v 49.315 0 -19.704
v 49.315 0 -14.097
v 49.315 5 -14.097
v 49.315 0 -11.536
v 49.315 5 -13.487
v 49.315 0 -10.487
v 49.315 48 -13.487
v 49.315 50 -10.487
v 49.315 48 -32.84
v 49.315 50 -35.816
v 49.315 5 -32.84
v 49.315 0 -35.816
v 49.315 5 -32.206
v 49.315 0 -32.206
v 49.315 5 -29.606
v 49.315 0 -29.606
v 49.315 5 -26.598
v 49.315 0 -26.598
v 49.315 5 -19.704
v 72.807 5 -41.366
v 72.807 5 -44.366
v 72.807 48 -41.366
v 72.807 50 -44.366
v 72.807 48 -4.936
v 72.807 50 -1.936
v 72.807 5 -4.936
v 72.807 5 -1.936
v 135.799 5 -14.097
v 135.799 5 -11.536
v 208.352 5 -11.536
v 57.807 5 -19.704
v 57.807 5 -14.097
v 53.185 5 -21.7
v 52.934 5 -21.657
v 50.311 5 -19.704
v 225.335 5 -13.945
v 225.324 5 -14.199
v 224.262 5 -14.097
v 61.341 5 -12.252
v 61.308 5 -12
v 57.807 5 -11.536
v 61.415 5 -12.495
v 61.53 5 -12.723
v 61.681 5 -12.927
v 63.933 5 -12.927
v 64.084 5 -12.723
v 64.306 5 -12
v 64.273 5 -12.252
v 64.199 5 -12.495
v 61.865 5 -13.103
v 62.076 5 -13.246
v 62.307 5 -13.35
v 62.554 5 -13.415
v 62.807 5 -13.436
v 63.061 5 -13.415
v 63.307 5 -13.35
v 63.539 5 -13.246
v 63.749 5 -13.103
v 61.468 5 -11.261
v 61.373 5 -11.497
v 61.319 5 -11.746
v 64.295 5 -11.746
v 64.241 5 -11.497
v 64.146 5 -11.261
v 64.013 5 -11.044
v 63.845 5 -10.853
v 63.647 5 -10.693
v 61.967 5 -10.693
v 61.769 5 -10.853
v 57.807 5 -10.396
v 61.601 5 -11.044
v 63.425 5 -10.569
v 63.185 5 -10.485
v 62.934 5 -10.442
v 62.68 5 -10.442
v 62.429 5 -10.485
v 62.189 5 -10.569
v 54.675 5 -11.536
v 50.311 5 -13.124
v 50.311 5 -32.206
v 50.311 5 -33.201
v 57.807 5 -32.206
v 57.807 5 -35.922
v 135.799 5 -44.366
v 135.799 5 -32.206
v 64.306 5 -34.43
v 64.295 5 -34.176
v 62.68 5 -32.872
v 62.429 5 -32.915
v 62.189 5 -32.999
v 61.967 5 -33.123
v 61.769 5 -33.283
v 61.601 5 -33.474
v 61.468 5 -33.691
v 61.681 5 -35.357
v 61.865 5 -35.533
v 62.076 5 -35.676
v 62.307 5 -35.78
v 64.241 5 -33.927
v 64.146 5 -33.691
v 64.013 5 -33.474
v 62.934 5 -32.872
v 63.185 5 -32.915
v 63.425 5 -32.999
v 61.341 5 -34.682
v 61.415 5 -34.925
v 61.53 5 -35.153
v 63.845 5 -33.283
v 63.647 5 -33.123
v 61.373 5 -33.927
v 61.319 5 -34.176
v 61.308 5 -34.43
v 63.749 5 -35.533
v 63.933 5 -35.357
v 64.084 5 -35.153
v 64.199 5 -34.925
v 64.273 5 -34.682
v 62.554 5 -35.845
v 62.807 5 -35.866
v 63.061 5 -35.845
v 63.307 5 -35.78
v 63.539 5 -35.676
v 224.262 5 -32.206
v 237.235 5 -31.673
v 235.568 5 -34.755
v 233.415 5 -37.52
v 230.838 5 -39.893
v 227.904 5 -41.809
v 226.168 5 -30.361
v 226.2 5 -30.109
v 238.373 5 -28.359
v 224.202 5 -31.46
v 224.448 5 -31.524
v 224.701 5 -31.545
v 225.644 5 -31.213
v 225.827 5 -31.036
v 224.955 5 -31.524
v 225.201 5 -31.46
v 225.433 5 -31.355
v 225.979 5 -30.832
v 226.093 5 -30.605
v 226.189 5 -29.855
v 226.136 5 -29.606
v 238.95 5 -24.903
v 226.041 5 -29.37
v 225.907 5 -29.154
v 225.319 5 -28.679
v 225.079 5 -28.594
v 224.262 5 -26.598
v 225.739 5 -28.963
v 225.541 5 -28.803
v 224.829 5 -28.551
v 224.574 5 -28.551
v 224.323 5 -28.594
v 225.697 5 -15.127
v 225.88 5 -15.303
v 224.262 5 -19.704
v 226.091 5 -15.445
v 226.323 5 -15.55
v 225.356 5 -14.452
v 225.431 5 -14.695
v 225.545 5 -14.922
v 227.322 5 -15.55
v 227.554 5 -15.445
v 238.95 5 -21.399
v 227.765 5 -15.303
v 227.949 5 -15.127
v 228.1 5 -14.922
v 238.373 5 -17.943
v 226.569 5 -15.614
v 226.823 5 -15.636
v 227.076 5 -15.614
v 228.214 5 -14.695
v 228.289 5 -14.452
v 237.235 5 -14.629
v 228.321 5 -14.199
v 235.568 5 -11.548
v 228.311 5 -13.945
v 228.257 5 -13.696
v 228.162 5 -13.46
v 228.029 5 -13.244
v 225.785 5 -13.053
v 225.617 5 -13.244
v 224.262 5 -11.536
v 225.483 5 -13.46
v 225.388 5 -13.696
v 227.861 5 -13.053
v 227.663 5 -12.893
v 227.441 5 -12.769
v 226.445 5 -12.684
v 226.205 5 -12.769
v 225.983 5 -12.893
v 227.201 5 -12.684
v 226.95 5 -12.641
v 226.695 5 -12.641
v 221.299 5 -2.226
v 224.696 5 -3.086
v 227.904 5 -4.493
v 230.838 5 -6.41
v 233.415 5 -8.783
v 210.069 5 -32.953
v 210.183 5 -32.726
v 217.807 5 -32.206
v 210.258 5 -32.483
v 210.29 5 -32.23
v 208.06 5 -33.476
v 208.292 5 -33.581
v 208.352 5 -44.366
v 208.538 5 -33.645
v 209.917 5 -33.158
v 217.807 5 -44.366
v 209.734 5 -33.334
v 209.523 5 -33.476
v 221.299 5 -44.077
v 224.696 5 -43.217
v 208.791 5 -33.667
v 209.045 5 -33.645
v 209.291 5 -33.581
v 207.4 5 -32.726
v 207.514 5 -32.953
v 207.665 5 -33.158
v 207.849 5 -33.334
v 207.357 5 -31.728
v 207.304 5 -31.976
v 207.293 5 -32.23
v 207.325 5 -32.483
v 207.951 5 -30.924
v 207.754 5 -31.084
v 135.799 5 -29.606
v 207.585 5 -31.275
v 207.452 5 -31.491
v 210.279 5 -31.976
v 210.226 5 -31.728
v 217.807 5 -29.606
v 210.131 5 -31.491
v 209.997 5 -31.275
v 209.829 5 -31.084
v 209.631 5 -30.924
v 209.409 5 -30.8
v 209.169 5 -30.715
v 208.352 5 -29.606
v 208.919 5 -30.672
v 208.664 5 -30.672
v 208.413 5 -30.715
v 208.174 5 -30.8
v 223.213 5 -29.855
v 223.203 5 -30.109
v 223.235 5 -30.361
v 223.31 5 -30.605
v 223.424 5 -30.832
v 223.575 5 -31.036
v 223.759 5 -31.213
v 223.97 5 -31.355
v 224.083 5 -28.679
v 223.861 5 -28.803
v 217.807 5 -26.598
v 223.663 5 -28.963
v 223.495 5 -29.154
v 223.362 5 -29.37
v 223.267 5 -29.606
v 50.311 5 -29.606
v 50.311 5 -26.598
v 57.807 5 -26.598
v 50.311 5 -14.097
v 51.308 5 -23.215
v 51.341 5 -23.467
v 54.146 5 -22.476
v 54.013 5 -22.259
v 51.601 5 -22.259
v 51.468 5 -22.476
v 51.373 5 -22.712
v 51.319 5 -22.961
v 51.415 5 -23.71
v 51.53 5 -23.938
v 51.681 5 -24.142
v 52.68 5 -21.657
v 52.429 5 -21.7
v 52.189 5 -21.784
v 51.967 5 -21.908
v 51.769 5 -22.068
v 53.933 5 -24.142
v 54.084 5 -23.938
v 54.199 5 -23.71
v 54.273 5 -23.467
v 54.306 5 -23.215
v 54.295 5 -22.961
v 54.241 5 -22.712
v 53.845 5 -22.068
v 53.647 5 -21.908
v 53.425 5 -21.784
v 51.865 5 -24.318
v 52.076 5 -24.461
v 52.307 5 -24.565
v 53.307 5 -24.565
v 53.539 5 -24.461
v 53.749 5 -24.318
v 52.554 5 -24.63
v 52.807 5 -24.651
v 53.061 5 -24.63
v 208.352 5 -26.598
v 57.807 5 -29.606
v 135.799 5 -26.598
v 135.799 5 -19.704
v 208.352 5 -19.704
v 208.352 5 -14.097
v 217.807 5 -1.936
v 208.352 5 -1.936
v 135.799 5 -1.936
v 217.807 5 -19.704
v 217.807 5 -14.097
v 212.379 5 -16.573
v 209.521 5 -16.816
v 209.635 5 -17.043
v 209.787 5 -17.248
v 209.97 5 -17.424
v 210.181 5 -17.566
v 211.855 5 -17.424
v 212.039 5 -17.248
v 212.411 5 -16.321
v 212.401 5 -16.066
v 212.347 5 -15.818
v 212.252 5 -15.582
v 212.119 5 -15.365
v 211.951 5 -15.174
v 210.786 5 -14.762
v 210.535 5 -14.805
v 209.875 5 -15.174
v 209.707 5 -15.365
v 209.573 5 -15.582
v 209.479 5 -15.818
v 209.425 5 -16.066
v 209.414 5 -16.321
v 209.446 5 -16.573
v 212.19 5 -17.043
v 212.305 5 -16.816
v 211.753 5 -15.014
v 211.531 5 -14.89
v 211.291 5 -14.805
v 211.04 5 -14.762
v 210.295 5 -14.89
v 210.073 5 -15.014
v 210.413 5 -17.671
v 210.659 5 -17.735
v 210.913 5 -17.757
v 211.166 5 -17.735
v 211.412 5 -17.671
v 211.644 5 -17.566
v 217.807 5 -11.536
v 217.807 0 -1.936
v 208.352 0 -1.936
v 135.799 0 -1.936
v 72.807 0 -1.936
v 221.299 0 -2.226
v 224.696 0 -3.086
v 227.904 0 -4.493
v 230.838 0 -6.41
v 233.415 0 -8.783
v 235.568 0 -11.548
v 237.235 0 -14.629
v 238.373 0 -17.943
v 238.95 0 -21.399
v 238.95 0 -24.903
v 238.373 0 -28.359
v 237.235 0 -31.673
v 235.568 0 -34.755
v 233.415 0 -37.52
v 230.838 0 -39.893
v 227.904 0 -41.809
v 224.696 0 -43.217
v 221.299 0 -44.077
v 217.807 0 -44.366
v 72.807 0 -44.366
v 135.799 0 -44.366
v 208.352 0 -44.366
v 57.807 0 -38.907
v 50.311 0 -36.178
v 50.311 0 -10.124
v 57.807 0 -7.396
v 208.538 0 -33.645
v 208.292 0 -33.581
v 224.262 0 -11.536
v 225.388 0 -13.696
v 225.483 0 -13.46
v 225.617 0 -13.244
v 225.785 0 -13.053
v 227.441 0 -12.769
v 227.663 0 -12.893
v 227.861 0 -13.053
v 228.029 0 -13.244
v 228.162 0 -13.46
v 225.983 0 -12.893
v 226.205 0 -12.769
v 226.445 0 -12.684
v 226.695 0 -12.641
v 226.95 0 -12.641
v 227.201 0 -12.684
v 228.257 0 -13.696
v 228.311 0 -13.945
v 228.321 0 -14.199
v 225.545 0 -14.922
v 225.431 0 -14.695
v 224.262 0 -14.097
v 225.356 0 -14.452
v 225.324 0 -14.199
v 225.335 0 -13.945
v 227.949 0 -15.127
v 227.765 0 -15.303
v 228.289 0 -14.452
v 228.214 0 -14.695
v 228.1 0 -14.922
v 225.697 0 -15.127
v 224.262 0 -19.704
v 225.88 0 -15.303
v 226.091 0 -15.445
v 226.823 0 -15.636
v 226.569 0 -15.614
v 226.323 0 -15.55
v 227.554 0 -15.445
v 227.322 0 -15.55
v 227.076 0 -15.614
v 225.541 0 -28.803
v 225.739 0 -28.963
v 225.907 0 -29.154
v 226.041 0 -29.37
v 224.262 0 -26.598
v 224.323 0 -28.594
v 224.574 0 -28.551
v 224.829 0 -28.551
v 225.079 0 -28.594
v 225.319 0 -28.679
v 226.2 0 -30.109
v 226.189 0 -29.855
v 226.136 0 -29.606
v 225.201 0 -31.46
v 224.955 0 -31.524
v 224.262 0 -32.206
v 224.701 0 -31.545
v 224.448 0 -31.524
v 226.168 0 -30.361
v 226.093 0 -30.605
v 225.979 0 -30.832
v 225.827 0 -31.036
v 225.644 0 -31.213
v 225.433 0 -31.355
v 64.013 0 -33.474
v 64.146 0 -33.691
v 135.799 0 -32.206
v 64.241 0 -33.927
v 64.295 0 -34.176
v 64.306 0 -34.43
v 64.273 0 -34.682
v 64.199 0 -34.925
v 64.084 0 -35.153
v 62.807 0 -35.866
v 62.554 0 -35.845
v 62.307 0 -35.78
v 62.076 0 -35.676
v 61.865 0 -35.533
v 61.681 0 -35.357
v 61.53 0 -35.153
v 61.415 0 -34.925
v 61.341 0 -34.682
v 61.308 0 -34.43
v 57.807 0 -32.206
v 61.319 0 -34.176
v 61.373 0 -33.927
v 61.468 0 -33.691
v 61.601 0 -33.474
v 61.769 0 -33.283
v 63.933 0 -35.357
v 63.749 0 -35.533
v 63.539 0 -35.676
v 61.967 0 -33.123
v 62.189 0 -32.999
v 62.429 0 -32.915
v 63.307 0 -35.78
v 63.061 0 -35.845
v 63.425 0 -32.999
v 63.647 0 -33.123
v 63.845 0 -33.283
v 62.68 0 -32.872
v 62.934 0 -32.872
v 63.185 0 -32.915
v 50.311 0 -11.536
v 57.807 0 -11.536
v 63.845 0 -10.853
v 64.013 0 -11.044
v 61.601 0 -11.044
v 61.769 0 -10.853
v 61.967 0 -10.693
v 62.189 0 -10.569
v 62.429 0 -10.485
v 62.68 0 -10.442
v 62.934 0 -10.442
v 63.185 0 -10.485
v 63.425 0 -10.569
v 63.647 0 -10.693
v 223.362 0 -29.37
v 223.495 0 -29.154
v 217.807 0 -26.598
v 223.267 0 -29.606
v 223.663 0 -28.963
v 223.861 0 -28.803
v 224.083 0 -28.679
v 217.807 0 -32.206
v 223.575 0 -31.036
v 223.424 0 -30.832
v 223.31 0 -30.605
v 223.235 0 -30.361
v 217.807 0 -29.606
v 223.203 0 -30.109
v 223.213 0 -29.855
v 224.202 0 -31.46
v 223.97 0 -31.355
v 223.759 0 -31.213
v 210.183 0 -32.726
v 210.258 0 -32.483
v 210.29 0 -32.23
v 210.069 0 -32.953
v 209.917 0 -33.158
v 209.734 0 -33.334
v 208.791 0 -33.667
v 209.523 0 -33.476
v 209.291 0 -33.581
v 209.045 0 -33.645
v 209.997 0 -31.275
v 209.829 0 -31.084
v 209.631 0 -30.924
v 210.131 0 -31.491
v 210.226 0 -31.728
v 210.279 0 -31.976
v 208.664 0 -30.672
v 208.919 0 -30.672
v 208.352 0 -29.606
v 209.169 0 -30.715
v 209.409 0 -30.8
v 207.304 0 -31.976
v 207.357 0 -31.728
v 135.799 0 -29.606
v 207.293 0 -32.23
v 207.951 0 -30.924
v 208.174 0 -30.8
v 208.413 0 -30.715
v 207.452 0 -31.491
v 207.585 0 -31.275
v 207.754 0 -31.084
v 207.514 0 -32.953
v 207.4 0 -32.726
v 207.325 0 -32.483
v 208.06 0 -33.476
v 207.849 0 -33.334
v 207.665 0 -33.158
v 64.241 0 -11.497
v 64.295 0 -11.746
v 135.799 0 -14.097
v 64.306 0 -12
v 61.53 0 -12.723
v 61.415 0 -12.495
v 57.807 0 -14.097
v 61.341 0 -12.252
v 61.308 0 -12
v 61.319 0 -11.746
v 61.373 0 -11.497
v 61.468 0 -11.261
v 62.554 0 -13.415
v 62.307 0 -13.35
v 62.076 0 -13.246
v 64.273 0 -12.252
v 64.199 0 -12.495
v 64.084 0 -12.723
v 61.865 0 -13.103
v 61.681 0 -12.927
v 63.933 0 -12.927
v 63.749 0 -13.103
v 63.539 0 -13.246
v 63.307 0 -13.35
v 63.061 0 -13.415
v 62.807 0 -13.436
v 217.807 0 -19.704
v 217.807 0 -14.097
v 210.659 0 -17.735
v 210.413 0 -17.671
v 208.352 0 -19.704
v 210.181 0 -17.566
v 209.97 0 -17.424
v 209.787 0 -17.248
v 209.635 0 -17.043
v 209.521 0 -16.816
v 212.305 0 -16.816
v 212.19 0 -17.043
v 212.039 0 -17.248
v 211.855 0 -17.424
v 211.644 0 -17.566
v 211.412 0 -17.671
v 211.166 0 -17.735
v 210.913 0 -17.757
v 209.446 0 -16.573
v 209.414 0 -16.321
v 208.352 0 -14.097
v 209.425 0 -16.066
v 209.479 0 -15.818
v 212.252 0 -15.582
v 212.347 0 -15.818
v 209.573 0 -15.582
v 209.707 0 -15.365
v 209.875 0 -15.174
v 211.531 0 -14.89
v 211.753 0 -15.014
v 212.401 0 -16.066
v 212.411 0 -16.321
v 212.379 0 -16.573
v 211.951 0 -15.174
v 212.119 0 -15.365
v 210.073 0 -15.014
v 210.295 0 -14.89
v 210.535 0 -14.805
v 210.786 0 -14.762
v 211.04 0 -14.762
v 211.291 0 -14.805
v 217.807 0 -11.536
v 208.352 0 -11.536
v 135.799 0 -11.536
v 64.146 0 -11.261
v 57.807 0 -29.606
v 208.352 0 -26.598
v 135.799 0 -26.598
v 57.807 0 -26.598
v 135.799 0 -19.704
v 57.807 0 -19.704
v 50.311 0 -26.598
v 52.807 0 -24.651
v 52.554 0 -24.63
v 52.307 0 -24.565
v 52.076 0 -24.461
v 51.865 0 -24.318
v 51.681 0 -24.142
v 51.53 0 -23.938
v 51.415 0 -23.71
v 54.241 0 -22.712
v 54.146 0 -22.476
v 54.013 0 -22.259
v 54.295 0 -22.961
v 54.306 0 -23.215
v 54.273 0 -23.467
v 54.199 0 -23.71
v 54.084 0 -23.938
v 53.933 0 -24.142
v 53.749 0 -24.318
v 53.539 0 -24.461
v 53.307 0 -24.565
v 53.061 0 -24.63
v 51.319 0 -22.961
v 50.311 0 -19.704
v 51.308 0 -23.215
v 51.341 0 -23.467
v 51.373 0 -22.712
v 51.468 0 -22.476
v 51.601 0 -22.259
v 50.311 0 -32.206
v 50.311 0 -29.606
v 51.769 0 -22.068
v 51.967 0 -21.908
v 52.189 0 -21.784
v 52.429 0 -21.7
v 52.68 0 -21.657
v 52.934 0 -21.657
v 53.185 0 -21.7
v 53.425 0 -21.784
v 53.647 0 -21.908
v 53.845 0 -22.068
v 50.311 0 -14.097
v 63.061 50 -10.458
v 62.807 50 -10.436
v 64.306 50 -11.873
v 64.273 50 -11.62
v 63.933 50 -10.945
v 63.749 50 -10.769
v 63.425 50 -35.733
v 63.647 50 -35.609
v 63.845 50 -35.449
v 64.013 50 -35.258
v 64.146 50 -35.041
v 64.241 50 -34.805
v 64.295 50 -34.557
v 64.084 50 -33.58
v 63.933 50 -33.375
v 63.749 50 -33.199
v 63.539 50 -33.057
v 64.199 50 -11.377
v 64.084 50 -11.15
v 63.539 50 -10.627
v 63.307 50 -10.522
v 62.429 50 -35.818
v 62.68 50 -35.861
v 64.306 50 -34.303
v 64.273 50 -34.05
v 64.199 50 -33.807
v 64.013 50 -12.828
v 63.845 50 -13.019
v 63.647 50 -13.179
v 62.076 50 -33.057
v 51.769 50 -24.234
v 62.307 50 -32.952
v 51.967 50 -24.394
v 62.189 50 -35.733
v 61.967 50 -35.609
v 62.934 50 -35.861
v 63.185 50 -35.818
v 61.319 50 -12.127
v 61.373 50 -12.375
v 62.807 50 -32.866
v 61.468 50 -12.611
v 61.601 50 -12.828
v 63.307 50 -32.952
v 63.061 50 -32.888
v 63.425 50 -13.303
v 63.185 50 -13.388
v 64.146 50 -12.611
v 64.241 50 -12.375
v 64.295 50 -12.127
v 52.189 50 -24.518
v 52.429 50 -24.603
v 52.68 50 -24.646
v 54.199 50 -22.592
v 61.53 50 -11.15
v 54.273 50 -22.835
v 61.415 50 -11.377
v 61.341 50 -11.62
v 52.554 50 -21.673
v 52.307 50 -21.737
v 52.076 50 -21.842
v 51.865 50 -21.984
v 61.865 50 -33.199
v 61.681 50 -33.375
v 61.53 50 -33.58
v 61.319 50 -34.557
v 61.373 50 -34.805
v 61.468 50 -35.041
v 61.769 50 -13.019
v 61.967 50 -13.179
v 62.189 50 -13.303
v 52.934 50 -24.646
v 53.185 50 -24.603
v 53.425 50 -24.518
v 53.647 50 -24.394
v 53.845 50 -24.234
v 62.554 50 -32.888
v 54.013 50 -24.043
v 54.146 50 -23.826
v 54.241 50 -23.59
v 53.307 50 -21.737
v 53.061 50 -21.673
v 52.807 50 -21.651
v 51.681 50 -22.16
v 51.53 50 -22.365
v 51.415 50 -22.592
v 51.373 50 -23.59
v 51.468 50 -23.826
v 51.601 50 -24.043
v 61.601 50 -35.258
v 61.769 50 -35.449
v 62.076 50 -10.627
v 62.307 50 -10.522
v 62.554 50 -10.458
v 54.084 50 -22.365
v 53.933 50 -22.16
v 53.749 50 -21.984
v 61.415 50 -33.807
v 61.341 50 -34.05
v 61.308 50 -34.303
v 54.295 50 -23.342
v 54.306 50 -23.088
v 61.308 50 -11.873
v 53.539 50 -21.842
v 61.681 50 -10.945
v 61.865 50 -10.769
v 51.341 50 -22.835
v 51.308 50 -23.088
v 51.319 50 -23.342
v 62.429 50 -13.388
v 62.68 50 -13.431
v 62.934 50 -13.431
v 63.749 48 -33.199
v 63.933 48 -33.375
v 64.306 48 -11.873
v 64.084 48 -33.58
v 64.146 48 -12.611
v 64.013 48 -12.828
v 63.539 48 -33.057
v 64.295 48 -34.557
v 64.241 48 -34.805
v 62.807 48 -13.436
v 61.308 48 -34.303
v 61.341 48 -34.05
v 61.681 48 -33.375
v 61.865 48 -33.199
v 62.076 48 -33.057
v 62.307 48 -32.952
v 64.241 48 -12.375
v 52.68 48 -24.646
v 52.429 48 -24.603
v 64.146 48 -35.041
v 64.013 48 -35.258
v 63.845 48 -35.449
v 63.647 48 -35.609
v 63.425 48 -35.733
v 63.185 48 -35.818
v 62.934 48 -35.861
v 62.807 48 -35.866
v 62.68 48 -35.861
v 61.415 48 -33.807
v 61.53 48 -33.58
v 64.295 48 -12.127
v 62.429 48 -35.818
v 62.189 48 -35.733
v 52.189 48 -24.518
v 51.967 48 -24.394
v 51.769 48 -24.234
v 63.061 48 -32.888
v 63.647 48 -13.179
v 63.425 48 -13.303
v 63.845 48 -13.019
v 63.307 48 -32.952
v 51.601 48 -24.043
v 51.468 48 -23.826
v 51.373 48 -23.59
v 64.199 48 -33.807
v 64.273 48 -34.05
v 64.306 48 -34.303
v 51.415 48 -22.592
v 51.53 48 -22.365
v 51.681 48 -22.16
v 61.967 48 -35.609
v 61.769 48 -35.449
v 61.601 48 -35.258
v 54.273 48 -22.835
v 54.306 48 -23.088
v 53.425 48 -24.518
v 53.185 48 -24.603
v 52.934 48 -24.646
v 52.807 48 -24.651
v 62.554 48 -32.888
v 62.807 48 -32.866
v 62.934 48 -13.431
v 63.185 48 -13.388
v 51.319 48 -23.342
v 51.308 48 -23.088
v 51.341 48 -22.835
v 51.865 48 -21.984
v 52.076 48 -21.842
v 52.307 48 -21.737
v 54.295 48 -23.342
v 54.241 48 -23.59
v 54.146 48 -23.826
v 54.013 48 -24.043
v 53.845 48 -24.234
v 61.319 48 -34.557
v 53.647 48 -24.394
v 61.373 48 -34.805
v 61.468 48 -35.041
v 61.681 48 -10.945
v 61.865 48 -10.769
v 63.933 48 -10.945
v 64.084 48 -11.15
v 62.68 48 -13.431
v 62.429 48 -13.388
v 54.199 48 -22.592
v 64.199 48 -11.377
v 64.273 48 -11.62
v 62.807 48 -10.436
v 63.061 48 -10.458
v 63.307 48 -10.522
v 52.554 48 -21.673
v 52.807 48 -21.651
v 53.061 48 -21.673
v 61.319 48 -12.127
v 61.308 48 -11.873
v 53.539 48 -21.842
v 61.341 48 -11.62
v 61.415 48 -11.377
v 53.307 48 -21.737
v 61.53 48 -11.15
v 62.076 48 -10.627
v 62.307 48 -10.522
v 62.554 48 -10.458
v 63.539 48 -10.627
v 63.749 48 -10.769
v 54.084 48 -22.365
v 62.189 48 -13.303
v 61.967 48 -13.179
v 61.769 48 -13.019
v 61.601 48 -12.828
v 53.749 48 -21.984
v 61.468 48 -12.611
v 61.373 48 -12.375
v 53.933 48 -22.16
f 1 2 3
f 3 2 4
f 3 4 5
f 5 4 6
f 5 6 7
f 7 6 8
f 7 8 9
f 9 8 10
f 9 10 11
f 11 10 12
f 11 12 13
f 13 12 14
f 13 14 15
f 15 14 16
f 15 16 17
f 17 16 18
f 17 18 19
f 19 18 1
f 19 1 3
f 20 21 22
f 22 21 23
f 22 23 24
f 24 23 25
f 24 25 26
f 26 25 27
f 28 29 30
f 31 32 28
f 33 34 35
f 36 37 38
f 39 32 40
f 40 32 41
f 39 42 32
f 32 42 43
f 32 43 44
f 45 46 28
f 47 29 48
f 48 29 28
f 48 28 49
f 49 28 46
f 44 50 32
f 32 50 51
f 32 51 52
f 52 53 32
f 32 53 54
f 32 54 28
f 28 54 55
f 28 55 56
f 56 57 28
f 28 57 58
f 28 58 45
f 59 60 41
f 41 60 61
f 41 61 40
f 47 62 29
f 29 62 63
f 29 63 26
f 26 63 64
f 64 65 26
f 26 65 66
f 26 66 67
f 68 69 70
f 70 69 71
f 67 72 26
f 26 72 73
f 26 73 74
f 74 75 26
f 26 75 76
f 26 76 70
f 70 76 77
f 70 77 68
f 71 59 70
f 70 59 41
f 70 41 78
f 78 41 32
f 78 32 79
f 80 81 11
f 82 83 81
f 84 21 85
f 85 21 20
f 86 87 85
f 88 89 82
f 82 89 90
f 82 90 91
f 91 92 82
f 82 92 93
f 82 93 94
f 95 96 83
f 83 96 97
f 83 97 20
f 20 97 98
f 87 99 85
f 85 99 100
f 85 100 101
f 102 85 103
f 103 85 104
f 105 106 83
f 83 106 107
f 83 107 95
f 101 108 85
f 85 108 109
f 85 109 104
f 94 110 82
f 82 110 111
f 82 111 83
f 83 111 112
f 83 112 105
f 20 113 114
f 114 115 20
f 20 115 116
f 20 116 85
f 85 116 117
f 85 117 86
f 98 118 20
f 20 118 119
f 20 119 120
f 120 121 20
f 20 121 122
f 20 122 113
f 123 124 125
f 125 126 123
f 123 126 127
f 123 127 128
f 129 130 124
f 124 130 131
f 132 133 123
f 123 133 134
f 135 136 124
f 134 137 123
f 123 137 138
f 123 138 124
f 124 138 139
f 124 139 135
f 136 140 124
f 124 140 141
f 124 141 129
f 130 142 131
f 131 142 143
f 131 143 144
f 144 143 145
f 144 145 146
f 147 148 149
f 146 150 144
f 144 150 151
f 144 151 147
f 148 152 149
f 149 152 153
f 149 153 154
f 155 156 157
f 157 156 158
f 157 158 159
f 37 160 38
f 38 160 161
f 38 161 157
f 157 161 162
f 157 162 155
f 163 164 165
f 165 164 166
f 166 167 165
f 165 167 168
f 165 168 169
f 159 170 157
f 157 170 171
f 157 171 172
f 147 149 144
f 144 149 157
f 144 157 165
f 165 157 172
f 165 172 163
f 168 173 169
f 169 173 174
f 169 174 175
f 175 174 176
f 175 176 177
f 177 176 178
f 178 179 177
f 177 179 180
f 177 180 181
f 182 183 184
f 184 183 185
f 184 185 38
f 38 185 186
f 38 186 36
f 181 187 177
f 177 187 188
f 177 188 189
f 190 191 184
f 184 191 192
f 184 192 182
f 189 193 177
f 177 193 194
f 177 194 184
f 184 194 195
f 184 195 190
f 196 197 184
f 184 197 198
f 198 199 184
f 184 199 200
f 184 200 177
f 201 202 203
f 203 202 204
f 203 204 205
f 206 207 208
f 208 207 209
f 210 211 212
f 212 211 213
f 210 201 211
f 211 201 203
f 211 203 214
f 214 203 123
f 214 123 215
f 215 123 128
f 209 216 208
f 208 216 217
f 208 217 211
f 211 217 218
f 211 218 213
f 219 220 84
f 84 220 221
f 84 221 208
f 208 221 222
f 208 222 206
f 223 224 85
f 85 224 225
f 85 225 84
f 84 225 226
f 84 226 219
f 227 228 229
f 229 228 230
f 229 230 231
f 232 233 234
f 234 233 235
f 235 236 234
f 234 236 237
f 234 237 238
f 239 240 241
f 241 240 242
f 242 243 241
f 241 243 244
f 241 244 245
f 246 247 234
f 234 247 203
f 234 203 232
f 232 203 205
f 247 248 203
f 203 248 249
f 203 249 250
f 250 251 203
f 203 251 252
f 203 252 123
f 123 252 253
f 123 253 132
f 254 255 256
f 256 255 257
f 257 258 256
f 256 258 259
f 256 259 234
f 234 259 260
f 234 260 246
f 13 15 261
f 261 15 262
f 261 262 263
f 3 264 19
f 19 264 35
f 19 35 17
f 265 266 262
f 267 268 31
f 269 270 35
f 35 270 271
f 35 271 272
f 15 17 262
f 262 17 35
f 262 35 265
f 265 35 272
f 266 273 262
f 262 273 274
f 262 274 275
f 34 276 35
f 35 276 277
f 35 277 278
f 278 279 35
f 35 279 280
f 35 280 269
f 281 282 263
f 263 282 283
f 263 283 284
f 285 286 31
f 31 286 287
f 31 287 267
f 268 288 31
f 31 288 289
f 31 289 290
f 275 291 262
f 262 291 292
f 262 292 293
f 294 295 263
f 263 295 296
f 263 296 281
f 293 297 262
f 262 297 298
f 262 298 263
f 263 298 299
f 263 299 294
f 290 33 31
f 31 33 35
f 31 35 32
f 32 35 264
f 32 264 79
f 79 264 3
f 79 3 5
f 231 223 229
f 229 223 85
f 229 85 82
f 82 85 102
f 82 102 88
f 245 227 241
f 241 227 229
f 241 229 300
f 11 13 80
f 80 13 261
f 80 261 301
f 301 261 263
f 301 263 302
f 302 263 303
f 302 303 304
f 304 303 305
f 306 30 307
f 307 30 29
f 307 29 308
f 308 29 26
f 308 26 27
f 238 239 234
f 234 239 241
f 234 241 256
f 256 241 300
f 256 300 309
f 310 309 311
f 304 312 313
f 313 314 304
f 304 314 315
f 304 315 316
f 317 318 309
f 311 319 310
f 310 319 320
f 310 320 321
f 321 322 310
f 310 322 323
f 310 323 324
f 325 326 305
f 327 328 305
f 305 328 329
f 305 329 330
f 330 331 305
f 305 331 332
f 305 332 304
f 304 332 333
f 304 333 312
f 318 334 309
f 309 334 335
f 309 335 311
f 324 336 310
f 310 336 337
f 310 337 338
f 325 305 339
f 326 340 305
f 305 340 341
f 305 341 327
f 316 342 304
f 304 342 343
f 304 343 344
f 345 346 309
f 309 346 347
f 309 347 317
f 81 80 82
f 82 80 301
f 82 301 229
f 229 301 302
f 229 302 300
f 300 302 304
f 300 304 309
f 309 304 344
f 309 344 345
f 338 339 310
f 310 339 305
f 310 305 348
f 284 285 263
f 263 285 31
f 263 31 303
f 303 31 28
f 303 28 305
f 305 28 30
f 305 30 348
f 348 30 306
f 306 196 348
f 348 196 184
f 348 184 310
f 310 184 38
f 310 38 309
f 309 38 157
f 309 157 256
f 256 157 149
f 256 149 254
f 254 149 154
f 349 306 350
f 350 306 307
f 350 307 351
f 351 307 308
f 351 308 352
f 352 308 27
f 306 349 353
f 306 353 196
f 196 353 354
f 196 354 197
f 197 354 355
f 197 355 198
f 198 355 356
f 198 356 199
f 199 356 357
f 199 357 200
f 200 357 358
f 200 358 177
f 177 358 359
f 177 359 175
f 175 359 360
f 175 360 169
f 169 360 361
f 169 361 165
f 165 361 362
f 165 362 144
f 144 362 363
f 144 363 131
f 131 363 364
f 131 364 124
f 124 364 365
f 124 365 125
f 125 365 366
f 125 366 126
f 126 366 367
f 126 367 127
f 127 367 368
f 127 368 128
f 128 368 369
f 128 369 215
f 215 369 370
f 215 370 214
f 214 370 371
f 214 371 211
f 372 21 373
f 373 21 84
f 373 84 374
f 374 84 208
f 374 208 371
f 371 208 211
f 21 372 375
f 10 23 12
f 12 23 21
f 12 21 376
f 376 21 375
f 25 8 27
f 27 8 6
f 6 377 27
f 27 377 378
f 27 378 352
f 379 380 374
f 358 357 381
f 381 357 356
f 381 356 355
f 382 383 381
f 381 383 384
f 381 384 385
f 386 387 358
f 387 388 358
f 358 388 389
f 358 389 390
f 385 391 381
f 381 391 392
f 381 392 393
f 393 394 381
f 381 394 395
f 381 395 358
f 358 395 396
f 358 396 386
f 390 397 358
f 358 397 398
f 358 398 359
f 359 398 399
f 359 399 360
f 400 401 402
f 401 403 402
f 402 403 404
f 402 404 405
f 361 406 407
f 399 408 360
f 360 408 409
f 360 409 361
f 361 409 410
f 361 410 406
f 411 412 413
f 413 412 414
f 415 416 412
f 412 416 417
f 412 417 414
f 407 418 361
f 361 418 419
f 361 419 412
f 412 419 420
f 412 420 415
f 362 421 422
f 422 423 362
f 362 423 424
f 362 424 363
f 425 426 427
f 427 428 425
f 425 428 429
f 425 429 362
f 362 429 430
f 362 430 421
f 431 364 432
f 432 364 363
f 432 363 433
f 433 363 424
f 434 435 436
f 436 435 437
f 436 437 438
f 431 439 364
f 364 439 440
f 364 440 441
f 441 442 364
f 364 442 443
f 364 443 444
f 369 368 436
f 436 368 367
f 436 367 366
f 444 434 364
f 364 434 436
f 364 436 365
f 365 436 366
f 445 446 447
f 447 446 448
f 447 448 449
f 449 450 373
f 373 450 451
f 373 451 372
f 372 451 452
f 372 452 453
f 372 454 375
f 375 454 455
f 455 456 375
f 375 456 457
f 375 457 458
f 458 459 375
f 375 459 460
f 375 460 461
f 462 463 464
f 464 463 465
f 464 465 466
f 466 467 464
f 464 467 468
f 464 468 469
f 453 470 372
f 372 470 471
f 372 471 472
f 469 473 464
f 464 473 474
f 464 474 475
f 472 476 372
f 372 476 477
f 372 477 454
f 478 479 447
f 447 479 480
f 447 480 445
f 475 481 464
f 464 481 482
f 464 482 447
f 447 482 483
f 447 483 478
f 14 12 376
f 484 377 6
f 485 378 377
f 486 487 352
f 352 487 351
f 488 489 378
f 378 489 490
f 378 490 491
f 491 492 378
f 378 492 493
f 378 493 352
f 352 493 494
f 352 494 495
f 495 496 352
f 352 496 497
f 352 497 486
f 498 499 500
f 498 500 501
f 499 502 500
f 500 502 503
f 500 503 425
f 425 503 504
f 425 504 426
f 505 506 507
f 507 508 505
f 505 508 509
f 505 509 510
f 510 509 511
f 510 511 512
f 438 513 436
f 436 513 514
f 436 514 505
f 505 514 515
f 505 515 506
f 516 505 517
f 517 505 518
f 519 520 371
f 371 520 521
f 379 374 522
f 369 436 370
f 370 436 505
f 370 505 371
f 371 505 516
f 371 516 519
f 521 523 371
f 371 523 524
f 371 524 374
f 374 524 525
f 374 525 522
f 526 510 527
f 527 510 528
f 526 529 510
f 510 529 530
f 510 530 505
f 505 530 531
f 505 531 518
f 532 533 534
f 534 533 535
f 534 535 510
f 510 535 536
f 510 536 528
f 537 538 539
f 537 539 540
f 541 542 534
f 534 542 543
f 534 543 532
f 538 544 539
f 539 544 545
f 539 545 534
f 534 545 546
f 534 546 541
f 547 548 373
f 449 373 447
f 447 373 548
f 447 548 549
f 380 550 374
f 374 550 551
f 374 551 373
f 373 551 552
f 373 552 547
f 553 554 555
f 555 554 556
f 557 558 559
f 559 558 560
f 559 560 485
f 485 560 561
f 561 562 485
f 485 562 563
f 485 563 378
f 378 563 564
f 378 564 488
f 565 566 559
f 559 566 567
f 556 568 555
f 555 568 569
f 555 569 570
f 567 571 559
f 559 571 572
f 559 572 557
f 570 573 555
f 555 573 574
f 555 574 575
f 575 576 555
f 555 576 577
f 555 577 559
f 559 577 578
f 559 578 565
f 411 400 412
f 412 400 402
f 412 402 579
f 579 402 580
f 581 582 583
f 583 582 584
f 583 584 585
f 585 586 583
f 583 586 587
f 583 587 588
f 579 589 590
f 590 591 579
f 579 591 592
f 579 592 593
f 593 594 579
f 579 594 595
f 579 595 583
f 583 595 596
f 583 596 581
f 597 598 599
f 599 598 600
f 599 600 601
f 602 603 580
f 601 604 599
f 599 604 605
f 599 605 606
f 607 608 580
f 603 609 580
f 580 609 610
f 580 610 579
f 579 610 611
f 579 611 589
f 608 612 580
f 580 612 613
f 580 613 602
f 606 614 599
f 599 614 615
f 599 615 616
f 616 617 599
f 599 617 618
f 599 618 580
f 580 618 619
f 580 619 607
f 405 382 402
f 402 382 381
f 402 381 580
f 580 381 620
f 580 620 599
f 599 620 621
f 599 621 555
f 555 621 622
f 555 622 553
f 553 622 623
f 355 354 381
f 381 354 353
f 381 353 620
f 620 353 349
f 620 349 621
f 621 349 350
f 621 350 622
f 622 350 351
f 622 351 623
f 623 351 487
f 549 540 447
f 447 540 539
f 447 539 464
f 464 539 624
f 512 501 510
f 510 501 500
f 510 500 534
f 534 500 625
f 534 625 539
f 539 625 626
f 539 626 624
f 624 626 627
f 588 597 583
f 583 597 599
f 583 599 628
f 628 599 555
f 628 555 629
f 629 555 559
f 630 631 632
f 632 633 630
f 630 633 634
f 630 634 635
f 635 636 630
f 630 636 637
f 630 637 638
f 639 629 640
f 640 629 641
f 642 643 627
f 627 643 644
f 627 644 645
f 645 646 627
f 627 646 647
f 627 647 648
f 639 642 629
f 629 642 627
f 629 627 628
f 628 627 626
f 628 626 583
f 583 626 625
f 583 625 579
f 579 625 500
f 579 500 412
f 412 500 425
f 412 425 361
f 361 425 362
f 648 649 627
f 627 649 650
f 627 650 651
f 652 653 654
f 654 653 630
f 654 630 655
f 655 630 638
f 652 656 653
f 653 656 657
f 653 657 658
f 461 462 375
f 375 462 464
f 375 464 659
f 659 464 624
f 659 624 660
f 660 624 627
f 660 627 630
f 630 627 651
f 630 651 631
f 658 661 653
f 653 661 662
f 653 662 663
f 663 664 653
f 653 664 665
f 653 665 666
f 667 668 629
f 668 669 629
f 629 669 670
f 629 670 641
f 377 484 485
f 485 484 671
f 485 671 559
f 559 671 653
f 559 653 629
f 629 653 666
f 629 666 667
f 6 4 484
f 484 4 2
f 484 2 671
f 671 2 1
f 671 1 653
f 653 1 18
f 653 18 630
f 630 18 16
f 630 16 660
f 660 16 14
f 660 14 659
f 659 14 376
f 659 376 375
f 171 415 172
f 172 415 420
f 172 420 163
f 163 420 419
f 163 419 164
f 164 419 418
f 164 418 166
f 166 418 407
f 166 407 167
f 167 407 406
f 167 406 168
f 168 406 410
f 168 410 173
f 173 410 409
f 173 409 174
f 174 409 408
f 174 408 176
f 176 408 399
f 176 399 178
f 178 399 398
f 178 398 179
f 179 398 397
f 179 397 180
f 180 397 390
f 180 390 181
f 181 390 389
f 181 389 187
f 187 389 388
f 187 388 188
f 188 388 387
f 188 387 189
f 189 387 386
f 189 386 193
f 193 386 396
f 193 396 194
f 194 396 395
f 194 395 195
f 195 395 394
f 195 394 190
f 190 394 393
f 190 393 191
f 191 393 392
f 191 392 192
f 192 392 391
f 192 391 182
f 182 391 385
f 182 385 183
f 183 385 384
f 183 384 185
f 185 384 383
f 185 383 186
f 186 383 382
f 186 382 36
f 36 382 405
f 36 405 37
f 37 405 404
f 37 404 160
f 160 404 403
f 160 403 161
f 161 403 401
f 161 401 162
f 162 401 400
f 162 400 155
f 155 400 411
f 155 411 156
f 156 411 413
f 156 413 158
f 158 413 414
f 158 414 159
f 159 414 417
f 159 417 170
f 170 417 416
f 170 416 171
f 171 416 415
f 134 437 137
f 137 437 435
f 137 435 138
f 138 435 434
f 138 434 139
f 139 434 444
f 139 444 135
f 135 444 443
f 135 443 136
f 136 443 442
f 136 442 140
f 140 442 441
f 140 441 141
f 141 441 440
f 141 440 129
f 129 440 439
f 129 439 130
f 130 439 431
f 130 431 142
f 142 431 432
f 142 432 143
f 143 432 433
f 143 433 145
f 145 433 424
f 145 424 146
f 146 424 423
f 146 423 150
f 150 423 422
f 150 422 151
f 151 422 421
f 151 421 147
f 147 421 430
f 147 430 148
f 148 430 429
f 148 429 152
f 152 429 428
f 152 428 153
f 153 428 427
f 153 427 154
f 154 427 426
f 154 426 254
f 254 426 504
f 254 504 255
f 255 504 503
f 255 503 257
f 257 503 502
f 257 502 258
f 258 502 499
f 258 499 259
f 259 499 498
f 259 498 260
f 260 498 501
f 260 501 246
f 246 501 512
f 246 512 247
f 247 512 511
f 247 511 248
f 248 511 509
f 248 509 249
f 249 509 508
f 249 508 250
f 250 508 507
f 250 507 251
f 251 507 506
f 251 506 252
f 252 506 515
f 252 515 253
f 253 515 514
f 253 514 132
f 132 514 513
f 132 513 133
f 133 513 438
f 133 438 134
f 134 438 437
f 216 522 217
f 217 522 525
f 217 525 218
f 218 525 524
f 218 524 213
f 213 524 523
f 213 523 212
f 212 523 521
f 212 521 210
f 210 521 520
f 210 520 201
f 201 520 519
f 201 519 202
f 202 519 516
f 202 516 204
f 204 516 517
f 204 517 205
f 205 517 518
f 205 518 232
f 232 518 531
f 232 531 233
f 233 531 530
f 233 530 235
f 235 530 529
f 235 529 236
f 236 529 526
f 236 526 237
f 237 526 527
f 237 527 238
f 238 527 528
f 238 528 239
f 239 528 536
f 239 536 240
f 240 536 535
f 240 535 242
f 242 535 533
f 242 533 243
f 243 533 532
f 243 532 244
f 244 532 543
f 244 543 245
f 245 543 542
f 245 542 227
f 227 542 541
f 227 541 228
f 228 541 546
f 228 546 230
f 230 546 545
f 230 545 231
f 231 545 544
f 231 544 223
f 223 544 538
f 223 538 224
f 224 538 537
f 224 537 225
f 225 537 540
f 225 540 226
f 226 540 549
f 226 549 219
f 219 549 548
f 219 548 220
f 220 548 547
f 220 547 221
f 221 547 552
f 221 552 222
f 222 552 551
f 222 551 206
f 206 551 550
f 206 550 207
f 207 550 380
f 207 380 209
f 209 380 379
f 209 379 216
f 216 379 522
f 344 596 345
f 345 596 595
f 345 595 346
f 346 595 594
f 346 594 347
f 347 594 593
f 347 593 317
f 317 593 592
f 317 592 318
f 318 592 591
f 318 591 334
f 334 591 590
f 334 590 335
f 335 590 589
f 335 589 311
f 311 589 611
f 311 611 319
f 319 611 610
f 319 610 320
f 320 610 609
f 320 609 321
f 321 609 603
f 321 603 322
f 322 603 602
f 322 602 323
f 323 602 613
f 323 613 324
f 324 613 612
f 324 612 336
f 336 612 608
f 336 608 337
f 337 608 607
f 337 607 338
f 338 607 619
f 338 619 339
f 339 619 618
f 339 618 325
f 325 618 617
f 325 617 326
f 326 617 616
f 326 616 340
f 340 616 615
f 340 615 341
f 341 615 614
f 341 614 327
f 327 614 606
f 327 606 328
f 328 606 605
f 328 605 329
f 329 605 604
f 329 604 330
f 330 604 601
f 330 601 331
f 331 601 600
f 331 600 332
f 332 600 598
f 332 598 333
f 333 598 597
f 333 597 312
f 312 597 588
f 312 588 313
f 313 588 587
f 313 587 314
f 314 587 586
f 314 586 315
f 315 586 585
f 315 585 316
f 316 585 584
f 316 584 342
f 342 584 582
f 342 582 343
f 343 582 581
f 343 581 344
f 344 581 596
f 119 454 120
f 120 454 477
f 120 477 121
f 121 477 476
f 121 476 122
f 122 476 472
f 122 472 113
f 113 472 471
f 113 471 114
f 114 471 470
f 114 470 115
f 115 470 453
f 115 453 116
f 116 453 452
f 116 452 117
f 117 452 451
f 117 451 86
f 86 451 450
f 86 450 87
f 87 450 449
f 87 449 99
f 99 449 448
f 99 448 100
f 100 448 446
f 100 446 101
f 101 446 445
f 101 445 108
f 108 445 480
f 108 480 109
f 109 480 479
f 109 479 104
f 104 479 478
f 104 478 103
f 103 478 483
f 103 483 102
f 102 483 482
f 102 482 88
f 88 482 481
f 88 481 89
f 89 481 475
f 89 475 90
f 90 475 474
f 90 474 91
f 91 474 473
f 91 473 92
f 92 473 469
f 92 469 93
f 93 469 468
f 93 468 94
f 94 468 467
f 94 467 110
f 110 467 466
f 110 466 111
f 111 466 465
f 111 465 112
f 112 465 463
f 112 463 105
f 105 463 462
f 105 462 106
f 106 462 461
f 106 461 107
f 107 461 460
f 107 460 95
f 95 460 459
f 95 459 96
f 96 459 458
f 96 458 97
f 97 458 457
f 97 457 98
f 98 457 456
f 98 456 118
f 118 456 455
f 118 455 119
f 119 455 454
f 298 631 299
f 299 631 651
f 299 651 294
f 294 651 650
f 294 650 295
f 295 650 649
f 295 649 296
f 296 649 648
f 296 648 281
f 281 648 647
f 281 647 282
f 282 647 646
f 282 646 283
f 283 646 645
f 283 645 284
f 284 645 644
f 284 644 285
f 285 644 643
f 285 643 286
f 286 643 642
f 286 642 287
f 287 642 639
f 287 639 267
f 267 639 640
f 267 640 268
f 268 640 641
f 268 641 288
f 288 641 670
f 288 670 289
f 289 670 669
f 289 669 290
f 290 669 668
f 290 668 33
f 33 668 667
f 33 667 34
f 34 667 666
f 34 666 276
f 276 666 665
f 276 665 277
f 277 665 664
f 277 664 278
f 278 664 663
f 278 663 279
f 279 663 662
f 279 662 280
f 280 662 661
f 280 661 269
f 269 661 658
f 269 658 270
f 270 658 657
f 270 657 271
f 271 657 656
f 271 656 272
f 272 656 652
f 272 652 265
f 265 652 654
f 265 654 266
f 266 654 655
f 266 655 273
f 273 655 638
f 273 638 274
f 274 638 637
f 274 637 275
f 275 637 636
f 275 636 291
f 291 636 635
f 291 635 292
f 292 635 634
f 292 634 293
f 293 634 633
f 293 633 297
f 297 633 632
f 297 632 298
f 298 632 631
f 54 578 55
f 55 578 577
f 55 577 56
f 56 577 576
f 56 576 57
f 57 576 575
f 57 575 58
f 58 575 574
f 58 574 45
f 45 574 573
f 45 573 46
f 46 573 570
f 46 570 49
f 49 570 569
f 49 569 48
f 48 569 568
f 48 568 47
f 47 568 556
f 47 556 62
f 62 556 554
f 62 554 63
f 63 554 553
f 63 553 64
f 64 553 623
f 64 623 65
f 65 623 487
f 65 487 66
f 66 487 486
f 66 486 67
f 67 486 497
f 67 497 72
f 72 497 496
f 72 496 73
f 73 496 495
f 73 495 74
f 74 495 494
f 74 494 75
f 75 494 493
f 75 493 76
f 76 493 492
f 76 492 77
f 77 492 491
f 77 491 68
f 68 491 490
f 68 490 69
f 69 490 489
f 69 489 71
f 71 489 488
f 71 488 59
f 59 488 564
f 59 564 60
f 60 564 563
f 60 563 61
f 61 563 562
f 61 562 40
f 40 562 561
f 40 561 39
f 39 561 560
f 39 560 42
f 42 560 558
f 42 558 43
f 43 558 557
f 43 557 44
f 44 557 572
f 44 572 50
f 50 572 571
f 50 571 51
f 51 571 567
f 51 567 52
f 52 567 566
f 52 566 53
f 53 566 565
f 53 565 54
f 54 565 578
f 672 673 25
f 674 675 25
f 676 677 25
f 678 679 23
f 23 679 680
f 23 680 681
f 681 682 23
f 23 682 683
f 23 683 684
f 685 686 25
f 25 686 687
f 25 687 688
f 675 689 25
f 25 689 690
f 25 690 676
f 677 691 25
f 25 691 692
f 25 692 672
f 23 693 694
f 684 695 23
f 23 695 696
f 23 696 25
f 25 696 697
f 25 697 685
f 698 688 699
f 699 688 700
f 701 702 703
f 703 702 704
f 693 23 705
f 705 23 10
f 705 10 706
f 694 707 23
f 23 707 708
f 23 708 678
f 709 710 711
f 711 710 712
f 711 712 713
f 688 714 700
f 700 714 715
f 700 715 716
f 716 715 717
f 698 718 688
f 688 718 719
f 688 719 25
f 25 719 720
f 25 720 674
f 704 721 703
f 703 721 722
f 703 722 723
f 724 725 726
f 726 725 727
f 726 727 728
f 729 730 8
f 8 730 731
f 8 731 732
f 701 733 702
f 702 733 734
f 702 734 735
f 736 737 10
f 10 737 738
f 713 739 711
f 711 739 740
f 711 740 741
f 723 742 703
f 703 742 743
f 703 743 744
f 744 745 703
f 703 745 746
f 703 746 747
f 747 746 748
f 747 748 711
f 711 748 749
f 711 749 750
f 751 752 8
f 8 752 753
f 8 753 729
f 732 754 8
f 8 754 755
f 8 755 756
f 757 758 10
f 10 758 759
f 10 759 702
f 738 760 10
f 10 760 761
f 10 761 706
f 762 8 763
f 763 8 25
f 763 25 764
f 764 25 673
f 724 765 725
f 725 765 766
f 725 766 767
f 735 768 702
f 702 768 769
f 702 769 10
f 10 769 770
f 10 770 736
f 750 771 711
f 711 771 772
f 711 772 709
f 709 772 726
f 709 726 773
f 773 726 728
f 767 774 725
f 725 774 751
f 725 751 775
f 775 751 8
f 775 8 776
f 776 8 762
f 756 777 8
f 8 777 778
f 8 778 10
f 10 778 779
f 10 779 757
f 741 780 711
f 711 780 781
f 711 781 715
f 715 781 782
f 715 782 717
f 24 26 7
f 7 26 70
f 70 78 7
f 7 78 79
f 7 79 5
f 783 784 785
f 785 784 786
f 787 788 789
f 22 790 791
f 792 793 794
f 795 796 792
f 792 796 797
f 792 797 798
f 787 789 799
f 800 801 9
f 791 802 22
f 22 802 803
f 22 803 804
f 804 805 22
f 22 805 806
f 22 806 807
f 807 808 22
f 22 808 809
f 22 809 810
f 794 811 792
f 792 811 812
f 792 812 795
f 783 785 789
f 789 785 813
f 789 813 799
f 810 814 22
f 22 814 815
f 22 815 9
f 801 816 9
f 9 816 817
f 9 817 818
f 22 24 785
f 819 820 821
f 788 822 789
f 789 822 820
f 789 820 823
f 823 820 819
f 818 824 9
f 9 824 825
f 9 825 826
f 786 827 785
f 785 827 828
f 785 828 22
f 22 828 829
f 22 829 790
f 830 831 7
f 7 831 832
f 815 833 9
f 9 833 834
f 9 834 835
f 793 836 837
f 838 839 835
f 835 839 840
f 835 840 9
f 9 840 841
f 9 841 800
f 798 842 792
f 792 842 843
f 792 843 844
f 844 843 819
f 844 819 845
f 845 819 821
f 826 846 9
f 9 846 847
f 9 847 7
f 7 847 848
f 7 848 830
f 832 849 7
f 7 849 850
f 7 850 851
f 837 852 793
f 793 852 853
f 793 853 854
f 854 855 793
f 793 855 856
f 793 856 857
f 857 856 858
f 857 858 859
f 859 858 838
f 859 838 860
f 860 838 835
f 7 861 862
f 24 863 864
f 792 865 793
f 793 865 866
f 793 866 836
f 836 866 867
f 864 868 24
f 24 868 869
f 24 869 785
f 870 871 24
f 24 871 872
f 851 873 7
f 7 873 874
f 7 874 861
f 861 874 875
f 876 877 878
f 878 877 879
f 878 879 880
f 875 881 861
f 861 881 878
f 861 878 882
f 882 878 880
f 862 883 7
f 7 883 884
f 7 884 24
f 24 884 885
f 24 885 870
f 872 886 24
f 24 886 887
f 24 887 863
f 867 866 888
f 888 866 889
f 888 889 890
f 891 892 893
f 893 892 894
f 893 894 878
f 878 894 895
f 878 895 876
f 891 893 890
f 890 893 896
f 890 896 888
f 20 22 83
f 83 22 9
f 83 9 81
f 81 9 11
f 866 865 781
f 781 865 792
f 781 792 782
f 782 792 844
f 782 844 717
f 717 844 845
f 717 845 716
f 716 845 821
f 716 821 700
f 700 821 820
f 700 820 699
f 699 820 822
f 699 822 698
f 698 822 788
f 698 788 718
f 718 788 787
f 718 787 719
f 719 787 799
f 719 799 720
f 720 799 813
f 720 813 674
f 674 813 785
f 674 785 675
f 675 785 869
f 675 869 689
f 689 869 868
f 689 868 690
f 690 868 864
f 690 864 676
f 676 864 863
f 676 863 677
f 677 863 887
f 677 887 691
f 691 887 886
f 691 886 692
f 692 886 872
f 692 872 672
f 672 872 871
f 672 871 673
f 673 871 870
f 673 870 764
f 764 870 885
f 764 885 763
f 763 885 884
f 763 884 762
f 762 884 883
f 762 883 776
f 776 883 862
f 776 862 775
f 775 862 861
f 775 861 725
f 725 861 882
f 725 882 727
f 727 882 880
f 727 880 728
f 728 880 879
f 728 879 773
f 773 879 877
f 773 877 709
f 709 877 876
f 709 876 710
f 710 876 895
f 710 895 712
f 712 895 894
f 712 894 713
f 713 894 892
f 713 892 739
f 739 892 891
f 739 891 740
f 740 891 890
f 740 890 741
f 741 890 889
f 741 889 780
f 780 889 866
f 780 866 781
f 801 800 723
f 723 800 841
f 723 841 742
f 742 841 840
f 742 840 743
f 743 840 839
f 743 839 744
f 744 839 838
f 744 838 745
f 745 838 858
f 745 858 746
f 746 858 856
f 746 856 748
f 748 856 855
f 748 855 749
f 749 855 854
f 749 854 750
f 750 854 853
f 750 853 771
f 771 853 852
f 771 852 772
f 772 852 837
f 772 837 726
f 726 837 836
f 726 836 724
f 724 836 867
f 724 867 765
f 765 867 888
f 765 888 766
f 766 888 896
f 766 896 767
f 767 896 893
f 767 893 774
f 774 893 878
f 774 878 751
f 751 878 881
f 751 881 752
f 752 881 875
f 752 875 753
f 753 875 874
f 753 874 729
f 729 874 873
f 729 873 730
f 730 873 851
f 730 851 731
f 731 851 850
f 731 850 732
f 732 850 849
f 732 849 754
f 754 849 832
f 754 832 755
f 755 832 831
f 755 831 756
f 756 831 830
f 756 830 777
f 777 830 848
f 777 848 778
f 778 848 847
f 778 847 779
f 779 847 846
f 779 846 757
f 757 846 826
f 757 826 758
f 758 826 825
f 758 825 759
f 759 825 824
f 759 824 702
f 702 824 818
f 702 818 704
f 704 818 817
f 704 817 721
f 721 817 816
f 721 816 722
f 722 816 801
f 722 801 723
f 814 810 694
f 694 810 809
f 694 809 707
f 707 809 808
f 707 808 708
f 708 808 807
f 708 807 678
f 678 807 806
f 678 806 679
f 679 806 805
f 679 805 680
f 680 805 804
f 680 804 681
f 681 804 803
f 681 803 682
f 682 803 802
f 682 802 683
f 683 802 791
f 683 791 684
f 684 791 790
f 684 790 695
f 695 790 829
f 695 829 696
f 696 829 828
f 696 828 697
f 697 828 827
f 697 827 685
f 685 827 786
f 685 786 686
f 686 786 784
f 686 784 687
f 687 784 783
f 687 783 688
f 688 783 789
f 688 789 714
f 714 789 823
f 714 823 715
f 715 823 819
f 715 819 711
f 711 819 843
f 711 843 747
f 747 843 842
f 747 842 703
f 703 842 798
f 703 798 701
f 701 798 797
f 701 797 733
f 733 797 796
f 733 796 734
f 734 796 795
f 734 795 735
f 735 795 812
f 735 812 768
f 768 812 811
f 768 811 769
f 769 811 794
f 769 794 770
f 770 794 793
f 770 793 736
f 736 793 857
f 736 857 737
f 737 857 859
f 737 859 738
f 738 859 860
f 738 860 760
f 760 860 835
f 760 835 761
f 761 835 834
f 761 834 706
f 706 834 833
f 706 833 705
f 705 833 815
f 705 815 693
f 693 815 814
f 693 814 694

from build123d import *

# Parameters (mm, degrees)
EXTRUDE_1_DEPTH     = 5
SKETCH_3_R          = 1.5
CUT_EXTRUDE_1_DEPTH = 5
SKETCH_4_R          = 1.5
CUT_EXTRUDE_2_DEPTH = 50
EXTRUDE_2_DEPTH     = 45
CUT_EXTRUDE_START   = -45
SKETCH_8_R          = 1.5
CUT_EXTRUDE_3_DEPTH = 45


with BuildPart() as part:
    # 草图1 → 凸台-拉伸1 (new body)
    with BuildSketch(Plane(origin=(0, 0, 0), x_dir=(1, 0, 0), z_dir=(0, 1, 0))):
        with BuildLine():
            Line((72.807044649, 44.366167138), (49.314729129, 35.815663555))
            Line((49.314729129, 35.815663555), (49.314729129, 10.486670722))
            Line((49.314729129, 10.486670722), (72.807044649, 1.936167138))
            Line((72.807044649, 1.936167138), (217.807044649, 1.936167138))
            ThreePointArc((217.807044649, 1.936167138), (239.022044649, 23.151167138), (217.807044649, 44.366167138))
            Line((217.807044649, 44.366167138), (72.807044649, 44.366167138))
        make_face()
    extrude(amount=EXTRUDE_1_DEPTH)

    # 草图3 → 切除-拉伸1 (cut)
    with BuildSketch(Plane.XZ):
        with Locations(Location((226.822656109, -14.135555678, 0), (0, 0, 270))):
            Circle(SKETCH_3_R)
        with Locations(Location((224.701335766, -30.045458255, 0), (0, 0, 270))):
            Circle(SKETCH_3_R)
        with Locations(Location((208.791433189, -32.166778599, 0), (0, 0, 270))):
            Circle(SKETCH_3_R)
        with Locations(Location((210.912753532, -16.256876022, 0), (0, 0, 270))):
            Circle(SKETCH_3_R)
    extrude(amount=-CUT_EXTRUDE_1_DEPTH, mode=Mode.SUBTRACT)

    # 草图4 → 切除-拉伸2 (cut)
    with BuildSketch(Plane.XZ):
        with Locations(Location((62.807044649, -11.936167138, 0), (0, 0, 270))):
            Circle(SKETCH_4_R)
        with Locations(Location((52.807044649, -23.151167138, 0), (0, 0, 270))):
            Circle(SKETCH_4_R)
        with Locations(Location((62.807044649, -34.366167138, 0), (0, 0, 270))):
            Circle(SKETCH_4_R)
    extrude(amount=-CUT_EXTRUDE_2_DEPTH, mode=Mode.SUBTRACT)

    # 草图5 → 凸台-拉伸2 (add)
    with BuildSketch(Plane(origin=(0, 5, 0), x_dir=(1, 0, 0), z_dir=(0, 1, 0))):
        Polygon((72.807044649, 44.366167138), (72.807044649, 1.936167138), (49.314729129, 10.486670722), (49.314729129, 35.815663555), align=None)
    extrude(amount=EXTRUDE_2_DEPTH)

    # 草图6 → 切除-放样1 section 0
    with BuildSketch(Plane(origin=(72.807044649, 0, 0), x_dir=(0, 0, -1), z_dir=(1, 0, 0))):
        with BuildLine():
            Line((4.936167138, 5), (4.936167138, 48))
            Line((4.936167138, 48), (41.366167138, 48))
            Line((41.366167138, 48), (41.366167138, 5))
            Line((41.366167138, 5), (4.936167138, 5))
        make_face()
    # 草图7 → 切除-放样1 section 1
    with BuildSketch(Plane.ZY.offset(-49.314729129)):
        with BuildLine():
            Line((-32.839513374, 48), (-32.839513374, 5))
            Line((-32.839513374, 5), (-13.486670722, 5))
            Line((-13.486670722, 5), (-13.486670722, 48))
            Line((-13.486670722, 48), (-32.839513374, 48))
        make_face()
    loft(mode=Mode.SUBTRACT)

    # 草图8 → 切除-拉伸3 (cut)
    with BuildSketch(Plane(origin=(0, 50, 0), x_dir=(1, 0, 0), z_dir=(0, 1, 0)).offset(CUT_EXTRUDE_START)):
        with Locations(Location((62.807044649, 34.366167138, 0), (0, 0, 90))):
            Circle(SKETCH_8_R)
        with Locations(Location((52.807044649, 23.151167138, 0), (0, 0, 90))):
            Circle(SKETCH_8_R)
        with Locations(Location((62.807044649, 11.936167138, 0), (0, 0, 90))):
            Circle(SKETCH_8_R)
    extrude(amount=CUT_EXTRUDE_3_DEPTH, mode=Mode.SUBTRACT)


solid = part.part
